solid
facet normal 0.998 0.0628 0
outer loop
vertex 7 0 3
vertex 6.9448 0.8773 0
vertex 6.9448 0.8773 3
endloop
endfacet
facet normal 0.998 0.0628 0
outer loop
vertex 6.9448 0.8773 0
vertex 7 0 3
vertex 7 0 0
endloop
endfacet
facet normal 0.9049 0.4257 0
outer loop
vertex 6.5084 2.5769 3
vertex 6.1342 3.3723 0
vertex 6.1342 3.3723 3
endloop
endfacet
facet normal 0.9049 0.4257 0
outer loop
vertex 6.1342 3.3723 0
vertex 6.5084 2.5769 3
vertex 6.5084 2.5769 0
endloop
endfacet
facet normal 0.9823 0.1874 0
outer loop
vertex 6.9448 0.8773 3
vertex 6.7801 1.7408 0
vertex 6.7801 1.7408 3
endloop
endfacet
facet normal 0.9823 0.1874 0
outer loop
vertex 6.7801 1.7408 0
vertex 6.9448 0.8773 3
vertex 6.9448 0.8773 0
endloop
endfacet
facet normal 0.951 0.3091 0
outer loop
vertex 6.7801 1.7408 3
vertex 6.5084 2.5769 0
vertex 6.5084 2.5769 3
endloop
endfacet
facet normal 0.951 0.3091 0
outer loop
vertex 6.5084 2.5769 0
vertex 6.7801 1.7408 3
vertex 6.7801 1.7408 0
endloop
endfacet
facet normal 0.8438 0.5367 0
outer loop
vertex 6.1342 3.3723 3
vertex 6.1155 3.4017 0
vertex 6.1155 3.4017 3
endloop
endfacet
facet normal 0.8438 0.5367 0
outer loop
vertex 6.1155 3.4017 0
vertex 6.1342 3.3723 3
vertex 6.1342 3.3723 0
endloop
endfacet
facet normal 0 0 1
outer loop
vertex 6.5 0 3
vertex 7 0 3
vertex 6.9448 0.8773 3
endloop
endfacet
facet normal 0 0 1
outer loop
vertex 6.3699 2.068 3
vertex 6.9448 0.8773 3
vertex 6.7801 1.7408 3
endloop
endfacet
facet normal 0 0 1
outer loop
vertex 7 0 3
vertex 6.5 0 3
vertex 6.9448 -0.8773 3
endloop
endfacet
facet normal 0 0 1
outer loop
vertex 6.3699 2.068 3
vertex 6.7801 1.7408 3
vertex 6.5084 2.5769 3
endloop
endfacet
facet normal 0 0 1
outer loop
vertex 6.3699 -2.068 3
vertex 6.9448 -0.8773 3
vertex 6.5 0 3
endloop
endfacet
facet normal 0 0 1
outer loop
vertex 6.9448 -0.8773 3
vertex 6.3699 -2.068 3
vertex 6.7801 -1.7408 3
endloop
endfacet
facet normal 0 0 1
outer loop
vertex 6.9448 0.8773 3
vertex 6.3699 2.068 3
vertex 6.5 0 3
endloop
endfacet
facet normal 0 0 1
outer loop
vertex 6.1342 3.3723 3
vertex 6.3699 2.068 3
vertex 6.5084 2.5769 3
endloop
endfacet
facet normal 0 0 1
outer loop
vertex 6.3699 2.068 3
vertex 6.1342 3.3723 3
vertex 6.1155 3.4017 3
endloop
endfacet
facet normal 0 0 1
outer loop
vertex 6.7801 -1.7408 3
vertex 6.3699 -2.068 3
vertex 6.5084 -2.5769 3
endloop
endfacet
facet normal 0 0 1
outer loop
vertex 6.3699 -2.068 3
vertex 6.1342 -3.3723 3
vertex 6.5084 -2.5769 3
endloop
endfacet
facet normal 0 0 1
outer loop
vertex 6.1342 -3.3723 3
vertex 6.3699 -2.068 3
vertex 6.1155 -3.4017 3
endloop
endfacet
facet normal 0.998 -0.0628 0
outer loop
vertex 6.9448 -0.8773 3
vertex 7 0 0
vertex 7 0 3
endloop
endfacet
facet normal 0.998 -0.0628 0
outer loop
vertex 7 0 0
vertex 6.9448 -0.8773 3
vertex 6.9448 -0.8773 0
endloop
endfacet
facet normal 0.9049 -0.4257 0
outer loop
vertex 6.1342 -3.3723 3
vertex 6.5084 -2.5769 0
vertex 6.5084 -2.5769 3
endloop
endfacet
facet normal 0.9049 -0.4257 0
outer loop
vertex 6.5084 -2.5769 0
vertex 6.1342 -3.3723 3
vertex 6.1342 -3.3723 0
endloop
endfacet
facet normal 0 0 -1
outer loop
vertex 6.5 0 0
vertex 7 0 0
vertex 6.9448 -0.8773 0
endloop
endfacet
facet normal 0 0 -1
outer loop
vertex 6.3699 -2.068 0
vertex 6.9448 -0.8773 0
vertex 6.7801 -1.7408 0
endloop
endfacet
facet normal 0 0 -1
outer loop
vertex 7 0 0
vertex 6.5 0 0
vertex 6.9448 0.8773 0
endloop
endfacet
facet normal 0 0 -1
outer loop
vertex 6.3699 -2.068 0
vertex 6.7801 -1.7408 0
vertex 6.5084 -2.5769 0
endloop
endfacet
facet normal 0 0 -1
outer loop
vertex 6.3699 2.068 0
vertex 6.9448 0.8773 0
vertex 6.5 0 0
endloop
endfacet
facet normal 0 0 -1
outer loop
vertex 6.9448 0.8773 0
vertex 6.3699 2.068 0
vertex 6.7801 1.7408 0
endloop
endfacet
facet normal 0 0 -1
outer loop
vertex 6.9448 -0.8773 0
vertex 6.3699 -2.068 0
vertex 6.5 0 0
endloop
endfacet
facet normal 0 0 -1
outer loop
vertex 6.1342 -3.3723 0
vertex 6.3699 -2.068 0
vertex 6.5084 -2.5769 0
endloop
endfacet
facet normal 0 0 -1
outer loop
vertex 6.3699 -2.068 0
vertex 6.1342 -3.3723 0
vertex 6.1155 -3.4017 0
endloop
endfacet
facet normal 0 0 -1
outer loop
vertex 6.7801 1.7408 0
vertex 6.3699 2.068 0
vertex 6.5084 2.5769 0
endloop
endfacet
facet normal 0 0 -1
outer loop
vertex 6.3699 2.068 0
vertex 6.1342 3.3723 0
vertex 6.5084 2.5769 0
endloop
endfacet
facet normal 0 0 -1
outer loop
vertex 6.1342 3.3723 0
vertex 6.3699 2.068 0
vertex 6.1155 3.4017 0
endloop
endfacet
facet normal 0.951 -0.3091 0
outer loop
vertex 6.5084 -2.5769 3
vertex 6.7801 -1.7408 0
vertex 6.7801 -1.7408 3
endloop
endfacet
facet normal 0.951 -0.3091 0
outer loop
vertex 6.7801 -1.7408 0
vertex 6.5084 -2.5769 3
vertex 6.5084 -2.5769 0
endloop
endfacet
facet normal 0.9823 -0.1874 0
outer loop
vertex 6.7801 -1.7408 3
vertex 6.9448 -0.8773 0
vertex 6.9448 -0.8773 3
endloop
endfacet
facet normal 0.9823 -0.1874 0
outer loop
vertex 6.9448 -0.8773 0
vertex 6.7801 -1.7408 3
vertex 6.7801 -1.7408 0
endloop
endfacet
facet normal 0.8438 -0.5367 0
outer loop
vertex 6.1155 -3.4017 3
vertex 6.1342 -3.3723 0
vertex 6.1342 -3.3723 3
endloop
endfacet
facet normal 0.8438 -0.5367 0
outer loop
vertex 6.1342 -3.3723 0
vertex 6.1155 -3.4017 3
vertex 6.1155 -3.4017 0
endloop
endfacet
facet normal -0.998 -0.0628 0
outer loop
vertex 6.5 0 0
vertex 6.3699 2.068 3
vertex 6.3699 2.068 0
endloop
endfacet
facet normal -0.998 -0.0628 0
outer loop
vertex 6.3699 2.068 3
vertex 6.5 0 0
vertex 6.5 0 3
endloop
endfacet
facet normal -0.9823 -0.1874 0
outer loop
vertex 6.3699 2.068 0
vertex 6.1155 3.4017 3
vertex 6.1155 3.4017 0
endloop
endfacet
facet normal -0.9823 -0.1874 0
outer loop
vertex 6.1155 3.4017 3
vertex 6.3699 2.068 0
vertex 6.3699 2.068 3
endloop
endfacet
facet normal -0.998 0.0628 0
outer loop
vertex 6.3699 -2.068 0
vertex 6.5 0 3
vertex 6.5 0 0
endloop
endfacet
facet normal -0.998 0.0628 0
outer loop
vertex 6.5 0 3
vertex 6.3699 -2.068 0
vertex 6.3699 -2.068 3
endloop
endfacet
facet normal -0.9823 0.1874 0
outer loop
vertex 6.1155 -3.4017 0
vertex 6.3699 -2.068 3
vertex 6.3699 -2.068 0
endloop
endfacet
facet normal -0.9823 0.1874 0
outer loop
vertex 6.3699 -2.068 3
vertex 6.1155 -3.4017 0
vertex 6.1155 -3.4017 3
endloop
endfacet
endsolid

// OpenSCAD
$fn = 50;


difference() {
	union() {
		cylinder(h = 3, r = 7.0000000000);
		translate(v = [-13.0000000000, 0, 0]) {
			cylinder(h = 3, r = 7.0000000000);
		}
	}
	union() {
		cylinder(h = 3, r = 3.2500000000);
		cylinder(h = 3, r = 1.8000000000);
		cylinder(h = 3, r = 1.8000000000);
		cylinder(h = 3, r = 1.8000000000);
		translate(v = [-17.5000000000, 0, 0]) {
			hull() {
				translate(v = [-3.7500000000, 0.0000000000, 0]) {
					cylinder(h = 3, r = 7.5000000000);
				}
				translate(v = [3.7500000000, 0.0000000000, 0]) {
					cylinder(h = 3, r = 7.5000000000);
				}
				translate(v = [-3.7500000000, -0.0000000000, 0]) {
					cylinder(h = 3, r = 7.5000000000);
				}
				translate(v = [3.7500000000, -0.0000000000, 0]) {
					cylinder(h = 3, r = 7.5000000000);
				}
			}
		}
		translate(v = [-10.0000000000, 0, 0.0000000000]) {
			cylinder(h = 3, r = 16.5000000000);
		}
	}
}
